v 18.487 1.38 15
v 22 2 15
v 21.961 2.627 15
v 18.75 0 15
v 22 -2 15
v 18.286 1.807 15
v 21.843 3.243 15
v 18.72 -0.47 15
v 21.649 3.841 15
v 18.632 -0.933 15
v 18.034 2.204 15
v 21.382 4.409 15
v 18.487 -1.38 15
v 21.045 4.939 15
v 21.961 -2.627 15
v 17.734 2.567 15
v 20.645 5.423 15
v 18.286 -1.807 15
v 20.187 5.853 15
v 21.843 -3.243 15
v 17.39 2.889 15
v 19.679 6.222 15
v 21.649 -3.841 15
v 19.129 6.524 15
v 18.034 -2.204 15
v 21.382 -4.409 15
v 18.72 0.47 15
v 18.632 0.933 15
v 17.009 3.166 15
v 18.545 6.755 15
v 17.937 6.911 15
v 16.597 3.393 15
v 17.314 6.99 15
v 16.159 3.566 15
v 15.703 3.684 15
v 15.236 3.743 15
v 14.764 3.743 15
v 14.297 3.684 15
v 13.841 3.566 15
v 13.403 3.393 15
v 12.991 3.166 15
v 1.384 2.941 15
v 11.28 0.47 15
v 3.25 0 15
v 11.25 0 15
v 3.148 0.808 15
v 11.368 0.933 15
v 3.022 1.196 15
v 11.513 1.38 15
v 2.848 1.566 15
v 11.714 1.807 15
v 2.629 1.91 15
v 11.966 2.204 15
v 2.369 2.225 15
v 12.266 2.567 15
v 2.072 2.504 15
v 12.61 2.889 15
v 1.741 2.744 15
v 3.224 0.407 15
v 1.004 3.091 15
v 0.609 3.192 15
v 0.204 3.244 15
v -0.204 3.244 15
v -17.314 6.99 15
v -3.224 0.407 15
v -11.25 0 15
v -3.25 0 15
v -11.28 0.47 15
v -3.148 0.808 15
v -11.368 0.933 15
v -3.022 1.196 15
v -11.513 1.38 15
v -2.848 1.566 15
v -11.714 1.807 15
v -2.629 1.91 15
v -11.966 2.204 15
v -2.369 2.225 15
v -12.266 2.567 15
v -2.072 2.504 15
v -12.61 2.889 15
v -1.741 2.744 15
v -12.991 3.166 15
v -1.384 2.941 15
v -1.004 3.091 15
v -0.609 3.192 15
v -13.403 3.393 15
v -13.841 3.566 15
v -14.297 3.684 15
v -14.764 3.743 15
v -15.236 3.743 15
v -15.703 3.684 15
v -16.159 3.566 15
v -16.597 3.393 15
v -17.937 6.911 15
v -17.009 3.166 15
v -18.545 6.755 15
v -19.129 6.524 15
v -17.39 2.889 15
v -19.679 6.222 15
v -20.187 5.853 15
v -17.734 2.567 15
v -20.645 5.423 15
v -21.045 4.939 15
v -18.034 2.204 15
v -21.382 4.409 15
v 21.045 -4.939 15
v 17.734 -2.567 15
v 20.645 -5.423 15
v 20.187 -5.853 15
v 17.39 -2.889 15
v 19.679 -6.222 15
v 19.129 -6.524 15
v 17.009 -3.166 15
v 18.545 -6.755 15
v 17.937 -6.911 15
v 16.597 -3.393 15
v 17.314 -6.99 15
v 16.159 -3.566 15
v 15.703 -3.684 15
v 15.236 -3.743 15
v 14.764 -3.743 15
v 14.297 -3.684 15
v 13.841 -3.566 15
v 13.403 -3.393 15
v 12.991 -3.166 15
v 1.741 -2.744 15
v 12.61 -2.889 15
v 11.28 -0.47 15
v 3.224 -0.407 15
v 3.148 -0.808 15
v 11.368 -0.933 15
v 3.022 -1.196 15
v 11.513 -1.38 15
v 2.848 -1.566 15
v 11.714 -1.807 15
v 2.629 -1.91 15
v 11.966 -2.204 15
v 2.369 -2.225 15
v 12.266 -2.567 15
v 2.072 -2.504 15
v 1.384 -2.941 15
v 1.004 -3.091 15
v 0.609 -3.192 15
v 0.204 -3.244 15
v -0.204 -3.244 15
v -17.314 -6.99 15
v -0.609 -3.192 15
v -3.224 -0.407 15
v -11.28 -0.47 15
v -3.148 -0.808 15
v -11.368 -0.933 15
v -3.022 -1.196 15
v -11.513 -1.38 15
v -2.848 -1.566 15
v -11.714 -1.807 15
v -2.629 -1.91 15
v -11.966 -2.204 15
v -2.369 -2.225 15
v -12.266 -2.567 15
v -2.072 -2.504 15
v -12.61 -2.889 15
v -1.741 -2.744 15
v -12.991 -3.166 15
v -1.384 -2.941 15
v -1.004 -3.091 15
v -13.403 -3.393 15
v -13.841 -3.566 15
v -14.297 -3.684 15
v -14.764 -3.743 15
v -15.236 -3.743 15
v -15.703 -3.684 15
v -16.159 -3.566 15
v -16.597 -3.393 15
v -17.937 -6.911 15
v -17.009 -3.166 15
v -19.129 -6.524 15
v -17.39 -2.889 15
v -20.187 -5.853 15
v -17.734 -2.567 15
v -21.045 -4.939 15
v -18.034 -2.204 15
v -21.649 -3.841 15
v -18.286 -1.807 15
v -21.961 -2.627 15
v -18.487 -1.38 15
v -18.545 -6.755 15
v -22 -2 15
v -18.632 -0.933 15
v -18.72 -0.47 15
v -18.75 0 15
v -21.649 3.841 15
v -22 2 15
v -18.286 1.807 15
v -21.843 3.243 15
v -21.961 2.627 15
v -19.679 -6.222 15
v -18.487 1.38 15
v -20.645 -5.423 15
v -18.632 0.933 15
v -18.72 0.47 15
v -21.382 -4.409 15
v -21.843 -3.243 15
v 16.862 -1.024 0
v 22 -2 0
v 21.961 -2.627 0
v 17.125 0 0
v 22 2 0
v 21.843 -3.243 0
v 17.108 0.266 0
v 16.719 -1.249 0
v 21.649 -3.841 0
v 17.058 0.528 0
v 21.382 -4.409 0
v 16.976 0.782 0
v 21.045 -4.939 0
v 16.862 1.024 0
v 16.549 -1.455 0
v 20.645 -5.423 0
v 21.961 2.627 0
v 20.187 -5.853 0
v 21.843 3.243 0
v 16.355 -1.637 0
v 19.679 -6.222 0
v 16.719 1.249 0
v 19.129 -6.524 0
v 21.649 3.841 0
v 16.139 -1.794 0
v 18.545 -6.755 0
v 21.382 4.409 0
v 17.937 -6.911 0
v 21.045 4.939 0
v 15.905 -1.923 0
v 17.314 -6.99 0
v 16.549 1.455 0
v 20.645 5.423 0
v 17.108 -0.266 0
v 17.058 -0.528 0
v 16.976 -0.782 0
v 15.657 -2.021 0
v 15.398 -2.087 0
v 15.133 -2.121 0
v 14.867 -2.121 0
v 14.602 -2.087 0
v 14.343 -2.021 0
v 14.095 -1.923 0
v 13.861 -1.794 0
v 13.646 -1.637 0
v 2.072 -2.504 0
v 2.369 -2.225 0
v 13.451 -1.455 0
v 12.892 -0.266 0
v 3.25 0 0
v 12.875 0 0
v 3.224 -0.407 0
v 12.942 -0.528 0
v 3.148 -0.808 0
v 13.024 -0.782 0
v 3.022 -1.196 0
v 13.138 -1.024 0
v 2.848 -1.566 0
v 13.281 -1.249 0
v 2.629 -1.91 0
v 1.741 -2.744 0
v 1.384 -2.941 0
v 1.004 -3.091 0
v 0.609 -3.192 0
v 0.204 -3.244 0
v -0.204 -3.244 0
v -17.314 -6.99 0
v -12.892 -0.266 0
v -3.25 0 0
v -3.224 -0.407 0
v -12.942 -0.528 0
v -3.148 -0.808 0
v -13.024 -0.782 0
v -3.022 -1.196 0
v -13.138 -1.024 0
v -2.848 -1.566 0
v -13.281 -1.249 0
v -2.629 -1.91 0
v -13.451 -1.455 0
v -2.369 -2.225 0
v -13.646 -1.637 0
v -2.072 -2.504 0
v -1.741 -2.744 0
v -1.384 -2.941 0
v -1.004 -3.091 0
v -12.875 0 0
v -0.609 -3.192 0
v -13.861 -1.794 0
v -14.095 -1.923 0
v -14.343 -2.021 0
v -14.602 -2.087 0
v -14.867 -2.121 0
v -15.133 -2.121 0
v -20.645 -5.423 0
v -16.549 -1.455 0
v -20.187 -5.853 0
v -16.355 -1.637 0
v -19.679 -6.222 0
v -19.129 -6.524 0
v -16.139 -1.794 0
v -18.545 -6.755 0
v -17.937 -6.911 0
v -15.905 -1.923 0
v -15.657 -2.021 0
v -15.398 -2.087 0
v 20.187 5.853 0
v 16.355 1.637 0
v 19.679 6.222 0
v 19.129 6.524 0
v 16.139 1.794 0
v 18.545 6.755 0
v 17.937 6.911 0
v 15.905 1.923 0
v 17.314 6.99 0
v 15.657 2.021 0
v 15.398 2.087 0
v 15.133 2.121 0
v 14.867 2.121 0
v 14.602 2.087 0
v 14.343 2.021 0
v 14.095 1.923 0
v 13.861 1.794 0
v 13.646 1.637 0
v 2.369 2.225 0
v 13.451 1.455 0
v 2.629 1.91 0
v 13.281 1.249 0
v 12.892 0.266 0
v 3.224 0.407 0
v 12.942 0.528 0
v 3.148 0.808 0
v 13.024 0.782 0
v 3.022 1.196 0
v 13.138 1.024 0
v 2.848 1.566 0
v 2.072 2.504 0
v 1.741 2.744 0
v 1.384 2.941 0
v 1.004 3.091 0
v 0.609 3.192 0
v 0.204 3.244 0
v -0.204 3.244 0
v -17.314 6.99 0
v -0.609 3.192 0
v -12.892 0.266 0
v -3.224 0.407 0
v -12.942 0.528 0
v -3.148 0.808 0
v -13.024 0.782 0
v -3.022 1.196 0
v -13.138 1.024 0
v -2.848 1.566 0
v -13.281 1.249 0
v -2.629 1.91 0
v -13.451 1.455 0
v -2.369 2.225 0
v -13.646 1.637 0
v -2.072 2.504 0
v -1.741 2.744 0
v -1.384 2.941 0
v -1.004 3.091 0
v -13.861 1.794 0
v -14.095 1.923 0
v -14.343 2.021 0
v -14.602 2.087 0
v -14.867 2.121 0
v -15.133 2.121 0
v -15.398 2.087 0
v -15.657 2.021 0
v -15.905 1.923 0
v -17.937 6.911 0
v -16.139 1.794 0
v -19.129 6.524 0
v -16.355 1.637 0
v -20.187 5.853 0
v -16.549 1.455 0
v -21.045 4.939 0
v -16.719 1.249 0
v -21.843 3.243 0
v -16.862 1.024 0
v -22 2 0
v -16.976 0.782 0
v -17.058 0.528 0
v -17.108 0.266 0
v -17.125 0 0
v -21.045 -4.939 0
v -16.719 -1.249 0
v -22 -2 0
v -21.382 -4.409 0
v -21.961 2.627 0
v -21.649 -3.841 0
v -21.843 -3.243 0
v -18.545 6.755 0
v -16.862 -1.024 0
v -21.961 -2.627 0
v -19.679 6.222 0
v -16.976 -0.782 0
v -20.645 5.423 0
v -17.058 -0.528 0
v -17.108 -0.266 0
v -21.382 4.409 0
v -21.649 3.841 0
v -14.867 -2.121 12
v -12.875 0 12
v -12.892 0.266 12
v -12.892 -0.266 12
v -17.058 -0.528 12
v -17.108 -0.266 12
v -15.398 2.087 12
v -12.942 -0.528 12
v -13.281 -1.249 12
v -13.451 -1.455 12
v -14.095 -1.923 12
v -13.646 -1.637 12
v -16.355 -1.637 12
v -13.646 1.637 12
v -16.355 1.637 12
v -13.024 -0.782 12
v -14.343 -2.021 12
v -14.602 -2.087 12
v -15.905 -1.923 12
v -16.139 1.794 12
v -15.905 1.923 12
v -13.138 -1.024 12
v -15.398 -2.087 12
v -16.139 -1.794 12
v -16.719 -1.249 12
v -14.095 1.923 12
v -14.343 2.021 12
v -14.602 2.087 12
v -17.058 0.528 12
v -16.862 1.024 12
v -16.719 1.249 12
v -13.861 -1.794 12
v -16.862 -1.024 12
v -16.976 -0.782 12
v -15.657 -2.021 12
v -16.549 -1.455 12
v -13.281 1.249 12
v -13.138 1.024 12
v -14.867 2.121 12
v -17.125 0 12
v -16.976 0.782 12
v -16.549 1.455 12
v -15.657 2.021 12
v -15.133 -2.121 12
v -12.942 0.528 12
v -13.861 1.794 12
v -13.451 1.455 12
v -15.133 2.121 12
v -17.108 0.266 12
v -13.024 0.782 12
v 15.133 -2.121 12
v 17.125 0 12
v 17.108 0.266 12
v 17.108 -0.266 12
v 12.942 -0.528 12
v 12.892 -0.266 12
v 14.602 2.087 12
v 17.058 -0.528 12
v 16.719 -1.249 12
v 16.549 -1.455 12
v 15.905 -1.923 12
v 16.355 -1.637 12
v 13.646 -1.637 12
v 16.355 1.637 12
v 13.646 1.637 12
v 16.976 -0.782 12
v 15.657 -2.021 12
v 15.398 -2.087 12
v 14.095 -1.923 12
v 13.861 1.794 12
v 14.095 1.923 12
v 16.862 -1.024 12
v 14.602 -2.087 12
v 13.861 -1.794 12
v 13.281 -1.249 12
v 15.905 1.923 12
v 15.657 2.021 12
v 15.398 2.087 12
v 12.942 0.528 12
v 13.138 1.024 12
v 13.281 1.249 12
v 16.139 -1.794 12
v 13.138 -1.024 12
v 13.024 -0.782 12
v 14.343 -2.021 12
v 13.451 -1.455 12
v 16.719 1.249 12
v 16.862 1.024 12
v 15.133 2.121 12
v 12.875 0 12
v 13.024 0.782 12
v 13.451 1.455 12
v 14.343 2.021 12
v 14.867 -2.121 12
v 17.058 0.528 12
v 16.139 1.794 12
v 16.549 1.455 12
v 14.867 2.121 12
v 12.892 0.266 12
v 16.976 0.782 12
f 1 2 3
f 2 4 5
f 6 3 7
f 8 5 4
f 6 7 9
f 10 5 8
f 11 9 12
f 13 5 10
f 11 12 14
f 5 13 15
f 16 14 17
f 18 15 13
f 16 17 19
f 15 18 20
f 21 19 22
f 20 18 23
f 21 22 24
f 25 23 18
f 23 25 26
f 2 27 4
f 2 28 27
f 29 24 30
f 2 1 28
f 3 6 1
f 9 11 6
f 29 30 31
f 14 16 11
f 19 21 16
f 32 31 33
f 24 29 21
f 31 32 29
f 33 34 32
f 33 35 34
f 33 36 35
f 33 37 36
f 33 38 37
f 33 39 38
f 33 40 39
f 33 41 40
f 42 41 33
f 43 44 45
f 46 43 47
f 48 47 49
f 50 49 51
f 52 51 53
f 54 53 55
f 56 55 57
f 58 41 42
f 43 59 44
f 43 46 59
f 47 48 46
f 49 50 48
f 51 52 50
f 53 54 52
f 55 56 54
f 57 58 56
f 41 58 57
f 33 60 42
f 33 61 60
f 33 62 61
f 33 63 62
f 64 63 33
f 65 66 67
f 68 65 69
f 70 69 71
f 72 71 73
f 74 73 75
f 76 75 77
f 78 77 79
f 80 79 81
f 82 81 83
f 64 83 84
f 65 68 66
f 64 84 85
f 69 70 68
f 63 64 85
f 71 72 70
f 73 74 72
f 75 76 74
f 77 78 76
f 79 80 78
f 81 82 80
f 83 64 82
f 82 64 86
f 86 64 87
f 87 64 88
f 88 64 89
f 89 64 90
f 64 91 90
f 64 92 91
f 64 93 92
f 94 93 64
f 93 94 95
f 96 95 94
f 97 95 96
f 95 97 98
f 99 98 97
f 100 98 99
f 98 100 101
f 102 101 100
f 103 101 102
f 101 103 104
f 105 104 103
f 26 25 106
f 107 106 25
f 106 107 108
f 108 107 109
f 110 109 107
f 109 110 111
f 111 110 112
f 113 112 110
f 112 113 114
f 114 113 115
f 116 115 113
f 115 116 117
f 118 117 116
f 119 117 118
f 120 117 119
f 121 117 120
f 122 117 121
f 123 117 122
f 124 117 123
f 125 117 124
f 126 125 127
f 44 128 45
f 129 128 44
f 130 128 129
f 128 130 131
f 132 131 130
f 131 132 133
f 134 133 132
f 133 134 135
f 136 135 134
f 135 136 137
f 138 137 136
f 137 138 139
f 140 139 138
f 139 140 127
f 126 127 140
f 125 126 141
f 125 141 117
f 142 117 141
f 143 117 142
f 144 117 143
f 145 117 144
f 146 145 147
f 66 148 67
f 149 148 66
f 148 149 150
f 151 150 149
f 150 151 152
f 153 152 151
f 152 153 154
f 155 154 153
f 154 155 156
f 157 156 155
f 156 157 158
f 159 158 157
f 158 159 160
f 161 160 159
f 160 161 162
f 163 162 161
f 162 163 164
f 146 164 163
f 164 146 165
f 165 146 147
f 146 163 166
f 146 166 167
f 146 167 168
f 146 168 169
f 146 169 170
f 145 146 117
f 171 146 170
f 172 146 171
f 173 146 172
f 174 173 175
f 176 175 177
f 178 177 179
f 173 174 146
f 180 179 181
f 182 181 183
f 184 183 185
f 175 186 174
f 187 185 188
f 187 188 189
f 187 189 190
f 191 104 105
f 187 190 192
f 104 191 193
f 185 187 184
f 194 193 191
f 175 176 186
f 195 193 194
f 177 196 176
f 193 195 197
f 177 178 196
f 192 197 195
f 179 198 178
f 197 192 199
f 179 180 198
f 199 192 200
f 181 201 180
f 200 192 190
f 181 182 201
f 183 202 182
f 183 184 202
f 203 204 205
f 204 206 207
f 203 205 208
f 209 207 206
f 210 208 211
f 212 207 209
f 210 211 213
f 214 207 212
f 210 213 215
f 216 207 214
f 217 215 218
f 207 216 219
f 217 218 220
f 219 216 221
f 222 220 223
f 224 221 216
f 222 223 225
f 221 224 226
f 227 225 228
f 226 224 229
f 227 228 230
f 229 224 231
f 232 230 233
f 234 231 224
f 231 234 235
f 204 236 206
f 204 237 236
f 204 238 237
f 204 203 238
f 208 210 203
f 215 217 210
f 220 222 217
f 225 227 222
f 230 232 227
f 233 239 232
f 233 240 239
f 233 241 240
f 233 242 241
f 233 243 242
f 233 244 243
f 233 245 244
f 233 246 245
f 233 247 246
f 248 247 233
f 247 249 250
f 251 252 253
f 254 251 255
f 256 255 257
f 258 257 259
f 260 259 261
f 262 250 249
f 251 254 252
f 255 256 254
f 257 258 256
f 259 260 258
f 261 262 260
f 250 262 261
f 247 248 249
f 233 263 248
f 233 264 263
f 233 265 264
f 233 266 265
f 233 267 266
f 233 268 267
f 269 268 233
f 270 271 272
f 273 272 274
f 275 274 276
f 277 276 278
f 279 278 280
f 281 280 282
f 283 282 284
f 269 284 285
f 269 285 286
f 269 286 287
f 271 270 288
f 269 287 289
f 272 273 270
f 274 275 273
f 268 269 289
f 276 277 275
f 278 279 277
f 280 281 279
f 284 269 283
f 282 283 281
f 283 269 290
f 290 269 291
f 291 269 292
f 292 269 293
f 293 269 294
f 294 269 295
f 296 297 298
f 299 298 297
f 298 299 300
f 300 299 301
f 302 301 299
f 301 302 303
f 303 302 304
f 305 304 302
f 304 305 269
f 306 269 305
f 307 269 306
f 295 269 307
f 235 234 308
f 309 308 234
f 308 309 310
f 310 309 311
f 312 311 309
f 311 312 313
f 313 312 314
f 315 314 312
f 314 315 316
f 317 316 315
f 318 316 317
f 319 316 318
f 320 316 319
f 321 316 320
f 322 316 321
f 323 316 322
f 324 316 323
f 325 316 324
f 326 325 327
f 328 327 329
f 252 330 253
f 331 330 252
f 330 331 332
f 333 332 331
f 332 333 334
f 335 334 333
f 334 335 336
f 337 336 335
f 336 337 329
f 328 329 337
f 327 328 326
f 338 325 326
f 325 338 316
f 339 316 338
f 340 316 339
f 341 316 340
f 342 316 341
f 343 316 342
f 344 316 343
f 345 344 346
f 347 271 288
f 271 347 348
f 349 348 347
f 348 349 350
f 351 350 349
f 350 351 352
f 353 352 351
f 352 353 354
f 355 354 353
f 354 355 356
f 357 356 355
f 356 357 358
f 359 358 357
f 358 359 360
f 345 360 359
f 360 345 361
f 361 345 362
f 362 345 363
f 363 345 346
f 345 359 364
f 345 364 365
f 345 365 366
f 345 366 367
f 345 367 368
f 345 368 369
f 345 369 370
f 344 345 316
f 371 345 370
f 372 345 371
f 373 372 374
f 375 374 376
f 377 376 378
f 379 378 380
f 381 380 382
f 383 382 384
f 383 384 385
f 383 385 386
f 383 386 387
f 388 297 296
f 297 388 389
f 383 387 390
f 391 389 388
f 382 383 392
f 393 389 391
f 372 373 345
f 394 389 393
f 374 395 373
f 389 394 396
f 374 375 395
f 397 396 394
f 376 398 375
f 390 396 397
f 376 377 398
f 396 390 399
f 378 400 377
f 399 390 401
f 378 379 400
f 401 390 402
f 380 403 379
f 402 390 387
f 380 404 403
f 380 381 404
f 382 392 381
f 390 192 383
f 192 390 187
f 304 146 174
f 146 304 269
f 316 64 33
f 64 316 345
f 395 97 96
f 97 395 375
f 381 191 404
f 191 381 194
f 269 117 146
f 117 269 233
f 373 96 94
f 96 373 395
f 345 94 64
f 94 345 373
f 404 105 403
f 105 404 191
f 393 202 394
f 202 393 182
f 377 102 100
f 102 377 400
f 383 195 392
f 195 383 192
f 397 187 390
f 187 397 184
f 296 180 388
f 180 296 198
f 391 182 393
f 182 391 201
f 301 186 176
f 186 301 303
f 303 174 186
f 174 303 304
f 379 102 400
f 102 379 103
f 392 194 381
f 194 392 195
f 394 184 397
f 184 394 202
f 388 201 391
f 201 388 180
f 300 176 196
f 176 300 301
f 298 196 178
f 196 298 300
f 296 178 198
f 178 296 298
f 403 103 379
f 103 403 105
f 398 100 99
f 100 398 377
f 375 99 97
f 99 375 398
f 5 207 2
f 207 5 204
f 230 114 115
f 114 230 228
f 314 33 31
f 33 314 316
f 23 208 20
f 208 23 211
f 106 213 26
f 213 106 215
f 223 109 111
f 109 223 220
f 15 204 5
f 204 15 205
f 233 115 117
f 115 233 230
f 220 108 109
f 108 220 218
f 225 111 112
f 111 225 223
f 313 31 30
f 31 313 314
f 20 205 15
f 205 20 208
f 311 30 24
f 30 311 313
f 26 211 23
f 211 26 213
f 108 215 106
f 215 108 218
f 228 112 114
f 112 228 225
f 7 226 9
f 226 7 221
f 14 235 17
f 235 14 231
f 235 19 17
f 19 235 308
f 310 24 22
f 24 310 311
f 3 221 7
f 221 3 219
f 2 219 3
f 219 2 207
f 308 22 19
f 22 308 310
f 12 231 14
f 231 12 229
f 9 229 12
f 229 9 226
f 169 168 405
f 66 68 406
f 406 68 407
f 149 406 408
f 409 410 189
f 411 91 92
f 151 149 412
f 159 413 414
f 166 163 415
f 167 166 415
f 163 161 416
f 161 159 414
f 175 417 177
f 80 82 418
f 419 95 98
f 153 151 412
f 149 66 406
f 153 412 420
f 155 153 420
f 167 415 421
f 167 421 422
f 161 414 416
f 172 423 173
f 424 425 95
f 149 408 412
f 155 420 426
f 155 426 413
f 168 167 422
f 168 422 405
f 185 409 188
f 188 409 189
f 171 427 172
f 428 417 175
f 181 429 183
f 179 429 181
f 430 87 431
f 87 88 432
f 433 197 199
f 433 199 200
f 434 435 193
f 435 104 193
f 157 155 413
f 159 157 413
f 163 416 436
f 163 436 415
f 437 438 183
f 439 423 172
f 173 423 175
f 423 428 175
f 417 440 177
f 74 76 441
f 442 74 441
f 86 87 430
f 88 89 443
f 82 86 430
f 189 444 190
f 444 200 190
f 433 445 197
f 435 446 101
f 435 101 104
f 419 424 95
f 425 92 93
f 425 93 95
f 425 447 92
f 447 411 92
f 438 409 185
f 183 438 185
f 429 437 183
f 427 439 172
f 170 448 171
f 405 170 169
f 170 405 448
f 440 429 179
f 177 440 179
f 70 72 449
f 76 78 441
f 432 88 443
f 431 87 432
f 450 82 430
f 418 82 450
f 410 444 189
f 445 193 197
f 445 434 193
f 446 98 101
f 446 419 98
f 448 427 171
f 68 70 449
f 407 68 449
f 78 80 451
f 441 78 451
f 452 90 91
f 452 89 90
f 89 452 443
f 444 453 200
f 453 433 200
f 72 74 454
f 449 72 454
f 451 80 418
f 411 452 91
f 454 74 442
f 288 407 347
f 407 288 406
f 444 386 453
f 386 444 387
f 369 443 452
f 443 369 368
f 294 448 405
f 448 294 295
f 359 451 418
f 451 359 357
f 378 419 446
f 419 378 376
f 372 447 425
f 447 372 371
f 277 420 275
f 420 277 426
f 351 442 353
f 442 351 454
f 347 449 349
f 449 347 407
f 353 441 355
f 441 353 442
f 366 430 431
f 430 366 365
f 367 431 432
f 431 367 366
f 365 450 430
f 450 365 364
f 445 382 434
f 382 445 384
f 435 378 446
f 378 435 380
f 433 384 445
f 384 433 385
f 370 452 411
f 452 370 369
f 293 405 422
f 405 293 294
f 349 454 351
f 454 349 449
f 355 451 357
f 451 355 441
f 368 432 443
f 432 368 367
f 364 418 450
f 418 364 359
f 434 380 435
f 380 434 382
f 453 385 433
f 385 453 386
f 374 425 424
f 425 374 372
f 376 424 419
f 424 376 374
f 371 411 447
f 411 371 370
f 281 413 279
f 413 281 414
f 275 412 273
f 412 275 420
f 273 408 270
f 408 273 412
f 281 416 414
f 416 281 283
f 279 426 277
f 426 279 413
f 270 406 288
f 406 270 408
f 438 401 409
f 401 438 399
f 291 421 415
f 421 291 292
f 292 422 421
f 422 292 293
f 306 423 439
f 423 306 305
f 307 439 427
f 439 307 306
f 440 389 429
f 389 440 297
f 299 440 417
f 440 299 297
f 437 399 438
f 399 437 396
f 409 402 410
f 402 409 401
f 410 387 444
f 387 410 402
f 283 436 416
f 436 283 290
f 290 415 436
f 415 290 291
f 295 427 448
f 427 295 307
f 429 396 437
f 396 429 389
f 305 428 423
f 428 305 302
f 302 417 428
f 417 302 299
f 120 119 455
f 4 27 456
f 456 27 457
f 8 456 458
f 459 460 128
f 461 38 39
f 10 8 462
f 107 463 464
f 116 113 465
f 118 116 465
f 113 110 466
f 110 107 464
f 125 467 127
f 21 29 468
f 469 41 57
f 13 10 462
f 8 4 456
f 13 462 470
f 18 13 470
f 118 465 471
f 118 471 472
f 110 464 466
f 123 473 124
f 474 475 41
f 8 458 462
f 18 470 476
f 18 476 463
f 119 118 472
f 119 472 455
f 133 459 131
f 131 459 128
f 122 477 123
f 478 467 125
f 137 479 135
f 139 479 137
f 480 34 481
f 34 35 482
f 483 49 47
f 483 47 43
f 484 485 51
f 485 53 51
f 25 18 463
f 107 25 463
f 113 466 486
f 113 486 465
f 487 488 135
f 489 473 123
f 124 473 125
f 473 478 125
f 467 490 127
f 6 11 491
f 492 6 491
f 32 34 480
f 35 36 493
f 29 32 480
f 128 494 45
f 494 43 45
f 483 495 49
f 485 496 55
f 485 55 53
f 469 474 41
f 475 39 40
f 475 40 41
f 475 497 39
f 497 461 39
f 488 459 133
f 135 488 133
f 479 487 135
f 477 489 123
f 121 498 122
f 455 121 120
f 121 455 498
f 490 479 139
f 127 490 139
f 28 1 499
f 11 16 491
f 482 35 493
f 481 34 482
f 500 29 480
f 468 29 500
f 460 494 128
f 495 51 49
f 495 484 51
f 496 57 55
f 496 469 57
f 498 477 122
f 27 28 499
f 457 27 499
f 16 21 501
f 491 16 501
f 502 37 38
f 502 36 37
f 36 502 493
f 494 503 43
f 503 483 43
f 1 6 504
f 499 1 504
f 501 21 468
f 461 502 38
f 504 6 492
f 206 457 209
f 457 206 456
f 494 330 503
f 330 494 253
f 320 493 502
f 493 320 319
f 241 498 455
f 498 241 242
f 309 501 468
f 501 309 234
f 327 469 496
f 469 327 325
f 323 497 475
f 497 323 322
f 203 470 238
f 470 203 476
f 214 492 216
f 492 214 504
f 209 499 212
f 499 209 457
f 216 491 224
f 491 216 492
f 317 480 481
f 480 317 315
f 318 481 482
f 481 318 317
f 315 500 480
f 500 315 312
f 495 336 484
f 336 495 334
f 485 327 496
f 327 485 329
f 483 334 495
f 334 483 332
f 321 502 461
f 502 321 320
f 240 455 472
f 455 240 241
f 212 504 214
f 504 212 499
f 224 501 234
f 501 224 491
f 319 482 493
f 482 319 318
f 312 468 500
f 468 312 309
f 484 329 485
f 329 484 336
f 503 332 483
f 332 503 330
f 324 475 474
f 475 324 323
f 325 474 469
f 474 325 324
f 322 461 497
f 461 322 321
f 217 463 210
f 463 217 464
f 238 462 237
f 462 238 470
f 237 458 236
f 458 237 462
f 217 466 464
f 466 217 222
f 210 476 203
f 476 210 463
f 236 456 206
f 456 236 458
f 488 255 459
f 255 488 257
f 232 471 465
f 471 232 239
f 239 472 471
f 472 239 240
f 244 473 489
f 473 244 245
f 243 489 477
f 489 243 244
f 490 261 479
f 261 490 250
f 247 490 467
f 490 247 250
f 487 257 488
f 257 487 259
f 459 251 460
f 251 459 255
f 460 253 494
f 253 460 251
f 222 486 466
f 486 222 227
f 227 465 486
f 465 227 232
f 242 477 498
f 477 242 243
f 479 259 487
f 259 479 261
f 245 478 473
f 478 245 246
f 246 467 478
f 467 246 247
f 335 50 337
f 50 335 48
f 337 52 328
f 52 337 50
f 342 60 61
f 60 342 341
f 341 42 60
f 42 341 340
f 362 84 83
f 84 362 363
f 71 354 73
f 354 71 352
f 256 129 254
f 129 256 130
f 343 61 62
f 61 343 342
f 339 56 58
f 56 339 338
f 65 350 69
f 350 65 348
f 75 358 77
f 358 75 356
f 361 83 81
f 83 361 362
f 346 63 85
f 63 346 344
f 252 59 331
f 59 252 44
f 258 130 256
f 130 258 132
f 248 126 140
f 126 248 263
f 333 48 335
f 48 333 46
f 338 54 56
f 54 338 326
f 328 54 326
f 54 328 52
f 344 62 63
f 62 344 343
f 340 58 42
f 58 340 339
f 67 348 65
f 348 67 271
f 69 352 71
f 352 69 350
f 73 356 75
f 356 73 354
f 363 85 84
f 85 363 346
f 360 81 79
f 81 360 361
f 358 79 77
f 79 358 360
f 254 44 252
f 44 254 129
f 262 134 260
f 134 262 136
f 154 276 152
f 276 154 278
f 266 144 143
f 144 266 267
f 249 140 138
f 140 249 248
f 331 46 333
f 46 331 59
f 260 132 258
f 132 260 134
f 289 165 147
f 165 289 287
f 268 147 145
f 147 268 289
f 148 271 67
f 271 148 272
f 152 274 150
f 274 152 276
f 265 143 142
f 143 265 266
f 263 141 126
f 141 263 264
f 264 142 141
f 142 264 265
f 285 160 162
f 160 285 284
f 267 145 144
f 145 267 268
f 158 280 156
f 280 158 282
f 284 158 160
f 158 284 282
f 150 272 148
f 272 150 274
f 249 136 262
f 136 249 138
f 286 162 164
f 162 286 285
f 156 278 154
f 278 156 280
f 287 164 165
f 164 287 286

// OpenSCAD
$fn = 50;


difference() {
	union() {
		cylinder(h = 15, r = 7.0000000000);
		translate(v = [-7.5000000000, 0.0000000000, 0]) {
			hull() {
				translate(v = [-9.5000000000, 2.0000000000, 0]) {
					cylinder(h = 15, r = 5);
				}
				translate(v = [9.5000000000, 2.0000000000, 0]) {
					cylinder(h = 15, r = 5);
				}
				translate(v = [-9.5000000000, -2.0000000000, 0]) {
					cylinder(h = 15, r = 5);
				}
				translate(v = [9.5000000000, -2.0000000000, 0]) {
					cylinder(h = 15, r = 5);
				}
			}
		}
		translate(v = [-7.5000000000, 0.0000000000, 0]) {
			hull() {
				translate(v = [-9.5000000000, 2.0000000000, 0]) {
					cylinder(h = 15, r = 5);
				}
				translate(v = [9.5000000000, 2.0000000000, 0]) {
					cylinder(h = 15, r = 5);
				}
				translate(v = [-9.5000000000, -2.0000000000, 0]) {
					cylinder(h = 15, r = 5);
				}
				translate(v = [9.5000000000, -2.0000000000, 0]) {
					cylinder(h = 15, r = 5);
				}
			}
		}
		translate(v = [7.5000000000, 0.0000000000, 0]) {
			hull() {
				translate(v = [-9.5000000000, 2.0000000000, 0]) {
					cylinder(h = 15, r = 5);
				}
				translate(v = [9.5000000000, 2.0000000000, 0]) {
					cylinder(h = 15, r = 5);
				}
				translate(v = [-9.5000000000, -2.0000000000, 0]) {
					cylinder(h = 15, r = 5);
				}
				translate(v = [9.5000000000, -2.0000000000, 0]) {
					cylinder(h = 15, r = 5);
				}
			}
		}
		translate(v = [7.5000000000, 0.0000000000, 0]) {
			hull() {
				translate(v = [-9.5000000000, 2.0000000000, 0]) {
					cylinder(h = 15, r = 5);
				}
				translate(v = [9.5000000000, 2.0000000000, 0]) {
					cylinder(h = 15, r = 5);
				}
				translate(v = [-9.5000000000, -2.0000000000, 0]) {
					cylinder(h = 15, r = 5);
				}
				translate(v = [9.5000000000, -2.0000000000, 0]) {
					cylinder(h = 15, r = 5);
				}
			}
		}
	}
	union() {
		translate(v = [-15.0000000000, 0.0000000000, 15]) {
			rotate(a = [0, 0, 0]) {
				difference() {
					union() {
						#translate(v = [0, 0, -15.0000000000]) {
							cylinder(h = 15, r = 2.0000000000);
						}
						#translate(v = [0, 0, -3]) {
							cylinder(h = 3, r1 = 2.1250000000, r2 = 3.7500000000);
						}
						#translate(v = [0, 0, -15.0000000000]) {
							cylinder(h = 15, r = 2.1250000000);
						}
						#translate(v = [0, 0, -15.0000000000]) {
							cylinder(h = 15, r = 2.0000000000);
						}
					}
					union();
				}
			}
		}
		translate(v = [-15.0000000000, 0.0000000000, 15]) {
			rotate(a = [0, 0, 0]) {
				difference() {
					union() {
						#translate(v = [0, 0, -15.0000000000]) {
							cylinder(h = 15, r = 2.0000000000);
						}
						#translate(v = [0, 0, -3]) {
							cylinder(h = 3, r1 = 2.1250000000, r2 = 3.7500000000);
						}
						#translate(v = [0, 0, -15.0000000000]) {
							cylinder(h = 15, r = 2.1250000000);
						}
						#translate(v = [0, 0, -15.0000000000]) {
							cylinder(h = 15, r = 2.0000000000);
						}
					}
					union();
				}
			}
		}
		translate(v = [15.0000000000, 0.0000000000, 15]) {
			rotate(a = [0, 0, 0]) {
				difference() {
					union() {
						#translate(v = [0, 0, -15.0000000000]) {
							cylinder(h = 15, r = 2.0000000000);
						}
						#translate(v = [0, 0, -3]) {
							cylinder(h = 3, r1 = 2.1250000000, r2 = 3.7500000000);
						}
						#translate(v = [0, 0, -15.0000000000]) {
							cylinder(h = 15, r = 2.1250000000);
						}
						#translate(v = [0, 0, -15.0000000000]) {
							cylinder(h = 15, r = 2.0000000000);
						}
					}
					union();
				}
			}
		}
		translate(v = [15.0000000000, 0.0000000000, 15]) {
			rotate(a = [0, 0, 0]) {
				difference() {
					union() {
						#translate(v = [0, 0, -15.0000000000]) {
							cylinder(h = 15, r = 2.0000000000);
						}
						#translate(v = [0, 0, -3]) {
							cylinder(h = 3, r1 = 2.1250000000, r2 = 3.7500000000);
						}
						#translate(v = [0, 0, -15.0000000000]) {
							cylinder(h = 15, r = 2.1250000000);
						}
						#translate(v = [0, 0, -15.0000000000]) {
							cylinder(h = 15, r = 2.0000000000);
						}
					}
					union();
				}
			}
		}
		translate(v = [0, 0, -100]) {
			cylinder(h = 200, r = 3.2500000000);
		}
		translate(v = [0, 0, -100]) {
			cylinder(h = 200, r = 1.8000000000);
		}
	}
}
